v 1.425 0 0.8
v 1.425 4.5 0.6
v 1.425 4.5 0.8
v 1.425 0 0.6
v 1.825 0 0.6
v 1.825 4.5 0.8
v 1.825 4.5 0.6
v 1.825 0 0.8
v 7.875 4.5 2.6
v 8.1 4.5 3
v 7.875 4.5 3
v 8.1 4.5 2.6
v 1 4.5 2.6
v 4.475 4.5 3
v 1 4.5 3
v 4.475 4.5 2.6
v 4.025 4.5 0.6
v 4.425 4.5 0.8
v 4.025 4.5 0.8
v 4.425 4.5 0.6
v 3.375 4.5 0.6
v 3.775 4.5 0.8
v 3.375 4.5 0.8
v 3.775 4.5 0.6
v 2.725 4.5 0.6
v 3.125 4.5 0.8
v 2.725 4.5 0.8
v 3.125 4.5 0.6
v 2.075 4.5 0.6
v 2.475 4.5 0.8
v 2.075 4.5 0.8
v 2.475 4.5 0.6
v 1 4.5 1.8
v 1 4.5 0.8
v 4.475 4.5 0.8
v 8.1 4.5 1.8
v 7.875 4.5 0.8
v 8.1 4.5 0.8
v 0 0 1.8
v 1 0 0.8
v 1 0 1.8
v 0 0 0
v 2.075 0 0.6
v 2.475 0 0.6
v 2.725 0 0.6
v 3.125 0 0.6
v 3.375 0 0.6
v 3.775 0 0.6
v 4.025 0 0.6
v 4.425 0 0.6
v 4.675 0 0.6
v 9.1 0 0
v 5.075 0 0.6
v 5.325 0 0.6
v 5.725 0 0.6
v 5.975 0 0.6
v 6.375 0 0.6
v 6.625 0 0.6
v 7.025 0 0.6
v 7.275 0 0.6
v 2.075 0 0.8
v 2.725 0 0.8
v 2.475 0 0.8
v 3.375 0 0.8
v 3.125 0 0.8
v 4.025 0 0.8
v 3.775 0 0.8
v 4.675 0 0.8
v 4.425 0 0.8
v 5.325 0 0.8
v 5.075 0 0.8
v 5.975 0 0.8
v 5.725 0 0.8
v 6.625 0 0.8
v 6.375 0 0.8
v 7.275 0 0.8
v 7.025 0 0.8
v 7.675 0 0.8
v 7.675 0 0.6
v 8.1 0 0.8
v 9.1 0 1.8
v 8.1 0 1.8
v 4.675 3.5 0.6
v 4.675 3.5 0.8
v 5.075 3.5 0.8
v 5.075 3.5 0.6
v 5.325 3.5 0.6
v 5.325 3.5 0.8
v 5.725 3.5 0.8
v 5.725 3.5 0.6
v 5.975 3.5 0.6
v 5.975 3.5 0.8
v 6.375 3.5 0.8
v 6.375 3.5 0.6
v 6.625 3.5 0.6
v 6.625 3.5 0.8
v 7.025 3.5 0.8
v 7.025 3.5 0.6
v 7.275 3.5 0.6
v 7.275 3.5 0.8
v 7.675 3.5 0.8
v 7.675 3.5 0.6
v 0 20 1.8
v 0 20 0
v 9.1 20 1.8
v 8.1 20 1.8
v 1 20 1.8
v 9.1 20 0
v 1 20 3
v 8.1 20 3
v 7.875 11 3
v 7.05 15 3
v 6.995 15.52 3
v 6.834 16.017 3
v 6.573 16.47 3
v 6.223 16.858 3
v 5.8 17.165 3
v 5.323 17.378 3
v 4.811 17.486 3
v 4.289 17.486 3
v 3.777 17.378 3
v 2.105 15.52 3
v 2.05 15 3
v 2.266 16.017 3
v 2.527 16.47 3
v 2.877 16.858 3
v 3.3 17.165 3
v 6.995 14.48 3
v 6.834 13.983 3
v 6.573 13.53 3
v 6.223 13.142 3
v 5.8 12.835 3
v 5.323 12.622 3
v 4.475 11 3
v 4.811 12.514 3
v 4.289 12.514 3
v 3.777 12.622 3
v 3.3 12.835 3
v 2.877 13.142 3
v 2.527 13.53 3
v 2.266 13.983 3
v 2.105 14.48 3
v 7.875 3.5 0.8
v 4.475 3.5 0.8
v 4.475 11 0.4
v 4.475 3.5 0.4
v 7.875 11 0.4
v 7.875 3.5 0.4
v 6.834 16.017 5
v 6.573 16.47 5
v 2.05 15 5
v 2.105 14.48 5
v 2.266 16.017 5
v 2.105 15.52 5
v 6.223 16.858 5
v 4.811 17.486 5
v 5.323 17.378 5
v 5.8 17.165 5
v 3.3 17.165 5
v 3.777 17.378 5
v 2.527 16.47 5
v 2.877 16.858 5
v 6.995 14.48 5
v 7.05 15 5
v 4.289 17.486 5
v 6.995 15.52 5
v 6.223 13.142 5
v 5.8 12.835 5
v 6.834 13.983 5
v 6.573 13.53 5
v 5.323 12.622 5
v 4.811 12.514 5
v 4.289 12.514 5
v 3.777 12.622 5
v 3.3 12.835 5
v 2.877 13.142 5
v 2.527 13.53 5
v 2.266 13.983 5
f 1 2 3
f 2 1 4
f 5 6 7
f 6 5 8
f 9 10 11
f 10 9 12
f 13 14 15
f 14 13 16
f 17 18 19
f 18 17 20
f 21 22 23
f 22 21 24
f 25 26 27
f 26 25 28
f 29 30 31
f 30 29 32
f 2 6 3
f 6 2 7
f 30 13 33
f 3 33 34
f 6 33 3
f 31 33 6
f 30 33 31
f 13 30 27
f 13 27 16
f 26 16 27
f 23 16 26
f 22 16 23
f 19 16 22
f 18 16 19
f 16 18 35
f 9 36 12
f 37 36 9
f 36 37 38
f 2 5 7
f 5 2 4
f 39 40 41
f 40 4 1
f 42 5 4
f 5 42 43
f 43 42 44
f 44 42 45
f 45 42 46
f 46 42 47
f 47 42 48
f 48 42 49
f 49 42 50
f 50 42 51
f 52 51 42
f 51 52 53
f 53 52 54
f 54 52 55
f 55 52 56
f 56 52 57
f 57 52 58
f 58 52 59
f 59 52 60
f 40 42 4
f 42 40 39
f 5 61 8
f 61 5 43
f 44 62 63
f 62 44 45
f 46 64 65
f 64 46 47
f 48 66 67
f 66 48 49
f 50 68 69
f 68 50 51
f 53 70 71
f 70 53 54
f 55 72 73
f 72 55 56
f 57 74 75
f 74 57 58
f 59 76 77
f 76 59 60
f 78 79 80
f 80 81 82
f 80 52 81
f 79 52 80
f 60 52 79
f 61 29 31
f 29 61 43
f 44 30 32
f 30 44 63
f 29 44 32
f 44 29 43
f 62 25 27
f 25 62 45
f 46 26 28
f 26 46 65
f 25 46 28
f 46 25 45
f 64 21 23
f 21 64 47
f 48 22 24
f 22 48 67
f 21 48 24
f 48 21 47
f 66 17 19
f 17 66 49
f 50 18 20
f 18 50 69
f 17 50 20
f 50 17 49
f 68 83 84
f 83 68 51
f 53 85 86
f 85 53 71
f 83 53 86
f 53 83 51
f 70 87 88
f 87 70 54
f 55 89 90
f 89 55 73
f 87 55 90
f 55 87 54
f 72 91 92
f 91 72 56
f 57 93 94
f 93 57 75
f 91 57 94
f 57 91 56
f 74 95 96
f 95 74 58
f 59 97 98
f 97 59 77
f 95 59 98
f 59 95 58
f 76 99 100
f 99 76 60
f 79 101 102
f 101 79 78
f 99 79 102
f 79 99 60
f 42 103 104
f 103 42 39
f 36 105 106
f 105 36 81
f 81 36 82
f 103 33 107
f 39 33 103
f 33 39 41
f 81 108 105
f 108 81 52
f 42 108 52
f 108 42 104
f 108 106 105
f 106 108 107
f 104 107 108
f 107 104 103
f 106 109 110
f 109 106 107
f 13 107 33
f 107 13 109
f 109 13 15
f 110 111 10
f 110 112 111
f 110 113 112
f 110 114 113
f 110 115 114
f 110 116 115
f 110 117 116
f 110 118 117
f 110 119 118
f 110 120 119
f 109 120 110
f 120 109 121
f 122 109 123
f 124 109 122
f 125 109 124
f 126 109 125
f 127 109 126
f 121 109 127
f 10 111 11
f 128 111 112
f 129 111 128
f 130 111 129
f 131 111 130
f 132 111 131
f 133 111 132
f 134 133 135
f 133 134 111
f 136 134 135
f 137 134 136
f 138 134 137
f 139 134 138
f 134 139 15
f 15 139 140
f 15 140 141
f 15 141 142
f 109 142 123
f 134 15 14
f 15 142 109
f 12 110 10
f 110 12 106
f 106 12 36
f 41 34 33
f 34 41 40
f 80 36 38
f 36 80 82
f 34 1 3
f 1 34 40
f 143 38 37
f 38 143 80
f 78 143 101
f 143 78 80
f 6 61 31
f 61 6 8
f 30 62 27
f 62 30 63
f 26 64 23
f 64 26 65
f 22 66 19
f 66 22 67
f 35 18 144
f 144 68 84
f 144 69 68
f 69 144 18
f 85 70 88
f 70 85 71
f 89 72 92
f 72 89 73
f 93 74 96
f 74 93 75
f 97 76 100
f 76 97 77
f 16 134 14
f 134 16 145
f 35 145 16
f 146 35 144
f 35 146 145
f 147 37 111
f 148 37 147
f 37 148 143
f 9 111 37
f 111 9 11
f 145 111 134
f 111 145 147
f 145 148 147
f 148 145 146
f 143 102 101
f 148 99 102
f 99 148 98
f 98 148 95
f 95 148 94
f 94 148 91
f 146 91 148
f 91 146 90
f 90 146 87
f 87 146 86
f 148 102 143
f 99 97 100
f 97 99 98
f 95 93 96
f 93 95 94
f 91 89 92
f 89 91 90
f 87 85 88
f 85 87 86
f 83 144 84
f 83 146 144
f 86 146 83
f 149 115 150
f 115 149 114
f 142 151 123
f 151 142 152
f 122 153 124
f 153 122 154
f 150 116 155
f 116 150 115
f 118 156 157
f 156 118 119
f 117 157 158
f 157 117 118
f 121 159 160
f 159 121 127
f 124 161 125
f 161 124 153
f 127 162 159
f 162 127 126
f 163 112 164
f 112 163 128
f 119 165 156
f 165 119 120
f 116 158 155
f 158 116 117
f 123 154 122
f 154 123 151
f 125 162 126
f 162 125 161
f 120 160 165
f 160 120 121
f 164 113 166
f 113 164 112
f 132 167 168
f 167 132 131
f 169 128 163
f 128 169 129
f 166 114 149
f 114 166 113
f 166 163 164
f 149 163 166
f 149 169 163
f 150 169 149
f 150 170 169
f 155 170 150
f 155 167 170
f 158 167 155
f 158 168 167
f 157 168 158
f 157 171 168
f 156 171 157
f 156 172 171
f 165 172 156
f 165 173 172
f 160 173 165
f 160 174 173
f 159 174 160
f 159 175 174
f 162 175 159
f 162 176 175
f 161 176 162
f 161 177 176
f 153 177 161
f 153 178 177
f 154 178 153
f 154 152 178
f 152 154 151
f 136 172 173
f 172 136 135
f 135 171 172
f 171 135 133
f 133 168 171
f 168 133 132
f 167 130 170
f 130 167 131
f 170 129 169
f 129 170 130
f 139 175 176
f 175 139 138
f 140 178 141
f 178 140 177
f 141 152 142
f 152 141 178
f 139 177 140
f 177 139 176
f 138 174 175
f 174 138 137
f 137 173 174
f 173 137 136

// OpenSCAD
$fn=30;

w=9.1;
w2=w-2;

pp=0.65;
pw=0.4;
pins=10;
ps=((pins-1)*pp+pw)/2;
pl=4.5;
ph=0.6;

hl=11;
hw=3.4;
hpw=4*pp+pw;
hdh=ph-0.2;
pl2=3.5;

union() {
    difference() {
        union() {
            cube([w,20,1.8]);
            translate([1,4.5,0])
                cube([w2,15.5,3]);
        }
        translate([(w-w2)/2,0,0.8])
            cube([w2,4.5,1.8]);
        for (pin = [0:pins-1]) {
            translate([w/2-ps+pin*pp,0,ph])
                cube([pw,pl,2]);
        }
        translate([w/2+ps-hw+(hw-hpw)/2,pl2,hdh])
            cube([hw, hl-pl2, 4]);
    }
    translate([w/2,15,3])
        cylinder(2, 2.5, 2.5);
}
